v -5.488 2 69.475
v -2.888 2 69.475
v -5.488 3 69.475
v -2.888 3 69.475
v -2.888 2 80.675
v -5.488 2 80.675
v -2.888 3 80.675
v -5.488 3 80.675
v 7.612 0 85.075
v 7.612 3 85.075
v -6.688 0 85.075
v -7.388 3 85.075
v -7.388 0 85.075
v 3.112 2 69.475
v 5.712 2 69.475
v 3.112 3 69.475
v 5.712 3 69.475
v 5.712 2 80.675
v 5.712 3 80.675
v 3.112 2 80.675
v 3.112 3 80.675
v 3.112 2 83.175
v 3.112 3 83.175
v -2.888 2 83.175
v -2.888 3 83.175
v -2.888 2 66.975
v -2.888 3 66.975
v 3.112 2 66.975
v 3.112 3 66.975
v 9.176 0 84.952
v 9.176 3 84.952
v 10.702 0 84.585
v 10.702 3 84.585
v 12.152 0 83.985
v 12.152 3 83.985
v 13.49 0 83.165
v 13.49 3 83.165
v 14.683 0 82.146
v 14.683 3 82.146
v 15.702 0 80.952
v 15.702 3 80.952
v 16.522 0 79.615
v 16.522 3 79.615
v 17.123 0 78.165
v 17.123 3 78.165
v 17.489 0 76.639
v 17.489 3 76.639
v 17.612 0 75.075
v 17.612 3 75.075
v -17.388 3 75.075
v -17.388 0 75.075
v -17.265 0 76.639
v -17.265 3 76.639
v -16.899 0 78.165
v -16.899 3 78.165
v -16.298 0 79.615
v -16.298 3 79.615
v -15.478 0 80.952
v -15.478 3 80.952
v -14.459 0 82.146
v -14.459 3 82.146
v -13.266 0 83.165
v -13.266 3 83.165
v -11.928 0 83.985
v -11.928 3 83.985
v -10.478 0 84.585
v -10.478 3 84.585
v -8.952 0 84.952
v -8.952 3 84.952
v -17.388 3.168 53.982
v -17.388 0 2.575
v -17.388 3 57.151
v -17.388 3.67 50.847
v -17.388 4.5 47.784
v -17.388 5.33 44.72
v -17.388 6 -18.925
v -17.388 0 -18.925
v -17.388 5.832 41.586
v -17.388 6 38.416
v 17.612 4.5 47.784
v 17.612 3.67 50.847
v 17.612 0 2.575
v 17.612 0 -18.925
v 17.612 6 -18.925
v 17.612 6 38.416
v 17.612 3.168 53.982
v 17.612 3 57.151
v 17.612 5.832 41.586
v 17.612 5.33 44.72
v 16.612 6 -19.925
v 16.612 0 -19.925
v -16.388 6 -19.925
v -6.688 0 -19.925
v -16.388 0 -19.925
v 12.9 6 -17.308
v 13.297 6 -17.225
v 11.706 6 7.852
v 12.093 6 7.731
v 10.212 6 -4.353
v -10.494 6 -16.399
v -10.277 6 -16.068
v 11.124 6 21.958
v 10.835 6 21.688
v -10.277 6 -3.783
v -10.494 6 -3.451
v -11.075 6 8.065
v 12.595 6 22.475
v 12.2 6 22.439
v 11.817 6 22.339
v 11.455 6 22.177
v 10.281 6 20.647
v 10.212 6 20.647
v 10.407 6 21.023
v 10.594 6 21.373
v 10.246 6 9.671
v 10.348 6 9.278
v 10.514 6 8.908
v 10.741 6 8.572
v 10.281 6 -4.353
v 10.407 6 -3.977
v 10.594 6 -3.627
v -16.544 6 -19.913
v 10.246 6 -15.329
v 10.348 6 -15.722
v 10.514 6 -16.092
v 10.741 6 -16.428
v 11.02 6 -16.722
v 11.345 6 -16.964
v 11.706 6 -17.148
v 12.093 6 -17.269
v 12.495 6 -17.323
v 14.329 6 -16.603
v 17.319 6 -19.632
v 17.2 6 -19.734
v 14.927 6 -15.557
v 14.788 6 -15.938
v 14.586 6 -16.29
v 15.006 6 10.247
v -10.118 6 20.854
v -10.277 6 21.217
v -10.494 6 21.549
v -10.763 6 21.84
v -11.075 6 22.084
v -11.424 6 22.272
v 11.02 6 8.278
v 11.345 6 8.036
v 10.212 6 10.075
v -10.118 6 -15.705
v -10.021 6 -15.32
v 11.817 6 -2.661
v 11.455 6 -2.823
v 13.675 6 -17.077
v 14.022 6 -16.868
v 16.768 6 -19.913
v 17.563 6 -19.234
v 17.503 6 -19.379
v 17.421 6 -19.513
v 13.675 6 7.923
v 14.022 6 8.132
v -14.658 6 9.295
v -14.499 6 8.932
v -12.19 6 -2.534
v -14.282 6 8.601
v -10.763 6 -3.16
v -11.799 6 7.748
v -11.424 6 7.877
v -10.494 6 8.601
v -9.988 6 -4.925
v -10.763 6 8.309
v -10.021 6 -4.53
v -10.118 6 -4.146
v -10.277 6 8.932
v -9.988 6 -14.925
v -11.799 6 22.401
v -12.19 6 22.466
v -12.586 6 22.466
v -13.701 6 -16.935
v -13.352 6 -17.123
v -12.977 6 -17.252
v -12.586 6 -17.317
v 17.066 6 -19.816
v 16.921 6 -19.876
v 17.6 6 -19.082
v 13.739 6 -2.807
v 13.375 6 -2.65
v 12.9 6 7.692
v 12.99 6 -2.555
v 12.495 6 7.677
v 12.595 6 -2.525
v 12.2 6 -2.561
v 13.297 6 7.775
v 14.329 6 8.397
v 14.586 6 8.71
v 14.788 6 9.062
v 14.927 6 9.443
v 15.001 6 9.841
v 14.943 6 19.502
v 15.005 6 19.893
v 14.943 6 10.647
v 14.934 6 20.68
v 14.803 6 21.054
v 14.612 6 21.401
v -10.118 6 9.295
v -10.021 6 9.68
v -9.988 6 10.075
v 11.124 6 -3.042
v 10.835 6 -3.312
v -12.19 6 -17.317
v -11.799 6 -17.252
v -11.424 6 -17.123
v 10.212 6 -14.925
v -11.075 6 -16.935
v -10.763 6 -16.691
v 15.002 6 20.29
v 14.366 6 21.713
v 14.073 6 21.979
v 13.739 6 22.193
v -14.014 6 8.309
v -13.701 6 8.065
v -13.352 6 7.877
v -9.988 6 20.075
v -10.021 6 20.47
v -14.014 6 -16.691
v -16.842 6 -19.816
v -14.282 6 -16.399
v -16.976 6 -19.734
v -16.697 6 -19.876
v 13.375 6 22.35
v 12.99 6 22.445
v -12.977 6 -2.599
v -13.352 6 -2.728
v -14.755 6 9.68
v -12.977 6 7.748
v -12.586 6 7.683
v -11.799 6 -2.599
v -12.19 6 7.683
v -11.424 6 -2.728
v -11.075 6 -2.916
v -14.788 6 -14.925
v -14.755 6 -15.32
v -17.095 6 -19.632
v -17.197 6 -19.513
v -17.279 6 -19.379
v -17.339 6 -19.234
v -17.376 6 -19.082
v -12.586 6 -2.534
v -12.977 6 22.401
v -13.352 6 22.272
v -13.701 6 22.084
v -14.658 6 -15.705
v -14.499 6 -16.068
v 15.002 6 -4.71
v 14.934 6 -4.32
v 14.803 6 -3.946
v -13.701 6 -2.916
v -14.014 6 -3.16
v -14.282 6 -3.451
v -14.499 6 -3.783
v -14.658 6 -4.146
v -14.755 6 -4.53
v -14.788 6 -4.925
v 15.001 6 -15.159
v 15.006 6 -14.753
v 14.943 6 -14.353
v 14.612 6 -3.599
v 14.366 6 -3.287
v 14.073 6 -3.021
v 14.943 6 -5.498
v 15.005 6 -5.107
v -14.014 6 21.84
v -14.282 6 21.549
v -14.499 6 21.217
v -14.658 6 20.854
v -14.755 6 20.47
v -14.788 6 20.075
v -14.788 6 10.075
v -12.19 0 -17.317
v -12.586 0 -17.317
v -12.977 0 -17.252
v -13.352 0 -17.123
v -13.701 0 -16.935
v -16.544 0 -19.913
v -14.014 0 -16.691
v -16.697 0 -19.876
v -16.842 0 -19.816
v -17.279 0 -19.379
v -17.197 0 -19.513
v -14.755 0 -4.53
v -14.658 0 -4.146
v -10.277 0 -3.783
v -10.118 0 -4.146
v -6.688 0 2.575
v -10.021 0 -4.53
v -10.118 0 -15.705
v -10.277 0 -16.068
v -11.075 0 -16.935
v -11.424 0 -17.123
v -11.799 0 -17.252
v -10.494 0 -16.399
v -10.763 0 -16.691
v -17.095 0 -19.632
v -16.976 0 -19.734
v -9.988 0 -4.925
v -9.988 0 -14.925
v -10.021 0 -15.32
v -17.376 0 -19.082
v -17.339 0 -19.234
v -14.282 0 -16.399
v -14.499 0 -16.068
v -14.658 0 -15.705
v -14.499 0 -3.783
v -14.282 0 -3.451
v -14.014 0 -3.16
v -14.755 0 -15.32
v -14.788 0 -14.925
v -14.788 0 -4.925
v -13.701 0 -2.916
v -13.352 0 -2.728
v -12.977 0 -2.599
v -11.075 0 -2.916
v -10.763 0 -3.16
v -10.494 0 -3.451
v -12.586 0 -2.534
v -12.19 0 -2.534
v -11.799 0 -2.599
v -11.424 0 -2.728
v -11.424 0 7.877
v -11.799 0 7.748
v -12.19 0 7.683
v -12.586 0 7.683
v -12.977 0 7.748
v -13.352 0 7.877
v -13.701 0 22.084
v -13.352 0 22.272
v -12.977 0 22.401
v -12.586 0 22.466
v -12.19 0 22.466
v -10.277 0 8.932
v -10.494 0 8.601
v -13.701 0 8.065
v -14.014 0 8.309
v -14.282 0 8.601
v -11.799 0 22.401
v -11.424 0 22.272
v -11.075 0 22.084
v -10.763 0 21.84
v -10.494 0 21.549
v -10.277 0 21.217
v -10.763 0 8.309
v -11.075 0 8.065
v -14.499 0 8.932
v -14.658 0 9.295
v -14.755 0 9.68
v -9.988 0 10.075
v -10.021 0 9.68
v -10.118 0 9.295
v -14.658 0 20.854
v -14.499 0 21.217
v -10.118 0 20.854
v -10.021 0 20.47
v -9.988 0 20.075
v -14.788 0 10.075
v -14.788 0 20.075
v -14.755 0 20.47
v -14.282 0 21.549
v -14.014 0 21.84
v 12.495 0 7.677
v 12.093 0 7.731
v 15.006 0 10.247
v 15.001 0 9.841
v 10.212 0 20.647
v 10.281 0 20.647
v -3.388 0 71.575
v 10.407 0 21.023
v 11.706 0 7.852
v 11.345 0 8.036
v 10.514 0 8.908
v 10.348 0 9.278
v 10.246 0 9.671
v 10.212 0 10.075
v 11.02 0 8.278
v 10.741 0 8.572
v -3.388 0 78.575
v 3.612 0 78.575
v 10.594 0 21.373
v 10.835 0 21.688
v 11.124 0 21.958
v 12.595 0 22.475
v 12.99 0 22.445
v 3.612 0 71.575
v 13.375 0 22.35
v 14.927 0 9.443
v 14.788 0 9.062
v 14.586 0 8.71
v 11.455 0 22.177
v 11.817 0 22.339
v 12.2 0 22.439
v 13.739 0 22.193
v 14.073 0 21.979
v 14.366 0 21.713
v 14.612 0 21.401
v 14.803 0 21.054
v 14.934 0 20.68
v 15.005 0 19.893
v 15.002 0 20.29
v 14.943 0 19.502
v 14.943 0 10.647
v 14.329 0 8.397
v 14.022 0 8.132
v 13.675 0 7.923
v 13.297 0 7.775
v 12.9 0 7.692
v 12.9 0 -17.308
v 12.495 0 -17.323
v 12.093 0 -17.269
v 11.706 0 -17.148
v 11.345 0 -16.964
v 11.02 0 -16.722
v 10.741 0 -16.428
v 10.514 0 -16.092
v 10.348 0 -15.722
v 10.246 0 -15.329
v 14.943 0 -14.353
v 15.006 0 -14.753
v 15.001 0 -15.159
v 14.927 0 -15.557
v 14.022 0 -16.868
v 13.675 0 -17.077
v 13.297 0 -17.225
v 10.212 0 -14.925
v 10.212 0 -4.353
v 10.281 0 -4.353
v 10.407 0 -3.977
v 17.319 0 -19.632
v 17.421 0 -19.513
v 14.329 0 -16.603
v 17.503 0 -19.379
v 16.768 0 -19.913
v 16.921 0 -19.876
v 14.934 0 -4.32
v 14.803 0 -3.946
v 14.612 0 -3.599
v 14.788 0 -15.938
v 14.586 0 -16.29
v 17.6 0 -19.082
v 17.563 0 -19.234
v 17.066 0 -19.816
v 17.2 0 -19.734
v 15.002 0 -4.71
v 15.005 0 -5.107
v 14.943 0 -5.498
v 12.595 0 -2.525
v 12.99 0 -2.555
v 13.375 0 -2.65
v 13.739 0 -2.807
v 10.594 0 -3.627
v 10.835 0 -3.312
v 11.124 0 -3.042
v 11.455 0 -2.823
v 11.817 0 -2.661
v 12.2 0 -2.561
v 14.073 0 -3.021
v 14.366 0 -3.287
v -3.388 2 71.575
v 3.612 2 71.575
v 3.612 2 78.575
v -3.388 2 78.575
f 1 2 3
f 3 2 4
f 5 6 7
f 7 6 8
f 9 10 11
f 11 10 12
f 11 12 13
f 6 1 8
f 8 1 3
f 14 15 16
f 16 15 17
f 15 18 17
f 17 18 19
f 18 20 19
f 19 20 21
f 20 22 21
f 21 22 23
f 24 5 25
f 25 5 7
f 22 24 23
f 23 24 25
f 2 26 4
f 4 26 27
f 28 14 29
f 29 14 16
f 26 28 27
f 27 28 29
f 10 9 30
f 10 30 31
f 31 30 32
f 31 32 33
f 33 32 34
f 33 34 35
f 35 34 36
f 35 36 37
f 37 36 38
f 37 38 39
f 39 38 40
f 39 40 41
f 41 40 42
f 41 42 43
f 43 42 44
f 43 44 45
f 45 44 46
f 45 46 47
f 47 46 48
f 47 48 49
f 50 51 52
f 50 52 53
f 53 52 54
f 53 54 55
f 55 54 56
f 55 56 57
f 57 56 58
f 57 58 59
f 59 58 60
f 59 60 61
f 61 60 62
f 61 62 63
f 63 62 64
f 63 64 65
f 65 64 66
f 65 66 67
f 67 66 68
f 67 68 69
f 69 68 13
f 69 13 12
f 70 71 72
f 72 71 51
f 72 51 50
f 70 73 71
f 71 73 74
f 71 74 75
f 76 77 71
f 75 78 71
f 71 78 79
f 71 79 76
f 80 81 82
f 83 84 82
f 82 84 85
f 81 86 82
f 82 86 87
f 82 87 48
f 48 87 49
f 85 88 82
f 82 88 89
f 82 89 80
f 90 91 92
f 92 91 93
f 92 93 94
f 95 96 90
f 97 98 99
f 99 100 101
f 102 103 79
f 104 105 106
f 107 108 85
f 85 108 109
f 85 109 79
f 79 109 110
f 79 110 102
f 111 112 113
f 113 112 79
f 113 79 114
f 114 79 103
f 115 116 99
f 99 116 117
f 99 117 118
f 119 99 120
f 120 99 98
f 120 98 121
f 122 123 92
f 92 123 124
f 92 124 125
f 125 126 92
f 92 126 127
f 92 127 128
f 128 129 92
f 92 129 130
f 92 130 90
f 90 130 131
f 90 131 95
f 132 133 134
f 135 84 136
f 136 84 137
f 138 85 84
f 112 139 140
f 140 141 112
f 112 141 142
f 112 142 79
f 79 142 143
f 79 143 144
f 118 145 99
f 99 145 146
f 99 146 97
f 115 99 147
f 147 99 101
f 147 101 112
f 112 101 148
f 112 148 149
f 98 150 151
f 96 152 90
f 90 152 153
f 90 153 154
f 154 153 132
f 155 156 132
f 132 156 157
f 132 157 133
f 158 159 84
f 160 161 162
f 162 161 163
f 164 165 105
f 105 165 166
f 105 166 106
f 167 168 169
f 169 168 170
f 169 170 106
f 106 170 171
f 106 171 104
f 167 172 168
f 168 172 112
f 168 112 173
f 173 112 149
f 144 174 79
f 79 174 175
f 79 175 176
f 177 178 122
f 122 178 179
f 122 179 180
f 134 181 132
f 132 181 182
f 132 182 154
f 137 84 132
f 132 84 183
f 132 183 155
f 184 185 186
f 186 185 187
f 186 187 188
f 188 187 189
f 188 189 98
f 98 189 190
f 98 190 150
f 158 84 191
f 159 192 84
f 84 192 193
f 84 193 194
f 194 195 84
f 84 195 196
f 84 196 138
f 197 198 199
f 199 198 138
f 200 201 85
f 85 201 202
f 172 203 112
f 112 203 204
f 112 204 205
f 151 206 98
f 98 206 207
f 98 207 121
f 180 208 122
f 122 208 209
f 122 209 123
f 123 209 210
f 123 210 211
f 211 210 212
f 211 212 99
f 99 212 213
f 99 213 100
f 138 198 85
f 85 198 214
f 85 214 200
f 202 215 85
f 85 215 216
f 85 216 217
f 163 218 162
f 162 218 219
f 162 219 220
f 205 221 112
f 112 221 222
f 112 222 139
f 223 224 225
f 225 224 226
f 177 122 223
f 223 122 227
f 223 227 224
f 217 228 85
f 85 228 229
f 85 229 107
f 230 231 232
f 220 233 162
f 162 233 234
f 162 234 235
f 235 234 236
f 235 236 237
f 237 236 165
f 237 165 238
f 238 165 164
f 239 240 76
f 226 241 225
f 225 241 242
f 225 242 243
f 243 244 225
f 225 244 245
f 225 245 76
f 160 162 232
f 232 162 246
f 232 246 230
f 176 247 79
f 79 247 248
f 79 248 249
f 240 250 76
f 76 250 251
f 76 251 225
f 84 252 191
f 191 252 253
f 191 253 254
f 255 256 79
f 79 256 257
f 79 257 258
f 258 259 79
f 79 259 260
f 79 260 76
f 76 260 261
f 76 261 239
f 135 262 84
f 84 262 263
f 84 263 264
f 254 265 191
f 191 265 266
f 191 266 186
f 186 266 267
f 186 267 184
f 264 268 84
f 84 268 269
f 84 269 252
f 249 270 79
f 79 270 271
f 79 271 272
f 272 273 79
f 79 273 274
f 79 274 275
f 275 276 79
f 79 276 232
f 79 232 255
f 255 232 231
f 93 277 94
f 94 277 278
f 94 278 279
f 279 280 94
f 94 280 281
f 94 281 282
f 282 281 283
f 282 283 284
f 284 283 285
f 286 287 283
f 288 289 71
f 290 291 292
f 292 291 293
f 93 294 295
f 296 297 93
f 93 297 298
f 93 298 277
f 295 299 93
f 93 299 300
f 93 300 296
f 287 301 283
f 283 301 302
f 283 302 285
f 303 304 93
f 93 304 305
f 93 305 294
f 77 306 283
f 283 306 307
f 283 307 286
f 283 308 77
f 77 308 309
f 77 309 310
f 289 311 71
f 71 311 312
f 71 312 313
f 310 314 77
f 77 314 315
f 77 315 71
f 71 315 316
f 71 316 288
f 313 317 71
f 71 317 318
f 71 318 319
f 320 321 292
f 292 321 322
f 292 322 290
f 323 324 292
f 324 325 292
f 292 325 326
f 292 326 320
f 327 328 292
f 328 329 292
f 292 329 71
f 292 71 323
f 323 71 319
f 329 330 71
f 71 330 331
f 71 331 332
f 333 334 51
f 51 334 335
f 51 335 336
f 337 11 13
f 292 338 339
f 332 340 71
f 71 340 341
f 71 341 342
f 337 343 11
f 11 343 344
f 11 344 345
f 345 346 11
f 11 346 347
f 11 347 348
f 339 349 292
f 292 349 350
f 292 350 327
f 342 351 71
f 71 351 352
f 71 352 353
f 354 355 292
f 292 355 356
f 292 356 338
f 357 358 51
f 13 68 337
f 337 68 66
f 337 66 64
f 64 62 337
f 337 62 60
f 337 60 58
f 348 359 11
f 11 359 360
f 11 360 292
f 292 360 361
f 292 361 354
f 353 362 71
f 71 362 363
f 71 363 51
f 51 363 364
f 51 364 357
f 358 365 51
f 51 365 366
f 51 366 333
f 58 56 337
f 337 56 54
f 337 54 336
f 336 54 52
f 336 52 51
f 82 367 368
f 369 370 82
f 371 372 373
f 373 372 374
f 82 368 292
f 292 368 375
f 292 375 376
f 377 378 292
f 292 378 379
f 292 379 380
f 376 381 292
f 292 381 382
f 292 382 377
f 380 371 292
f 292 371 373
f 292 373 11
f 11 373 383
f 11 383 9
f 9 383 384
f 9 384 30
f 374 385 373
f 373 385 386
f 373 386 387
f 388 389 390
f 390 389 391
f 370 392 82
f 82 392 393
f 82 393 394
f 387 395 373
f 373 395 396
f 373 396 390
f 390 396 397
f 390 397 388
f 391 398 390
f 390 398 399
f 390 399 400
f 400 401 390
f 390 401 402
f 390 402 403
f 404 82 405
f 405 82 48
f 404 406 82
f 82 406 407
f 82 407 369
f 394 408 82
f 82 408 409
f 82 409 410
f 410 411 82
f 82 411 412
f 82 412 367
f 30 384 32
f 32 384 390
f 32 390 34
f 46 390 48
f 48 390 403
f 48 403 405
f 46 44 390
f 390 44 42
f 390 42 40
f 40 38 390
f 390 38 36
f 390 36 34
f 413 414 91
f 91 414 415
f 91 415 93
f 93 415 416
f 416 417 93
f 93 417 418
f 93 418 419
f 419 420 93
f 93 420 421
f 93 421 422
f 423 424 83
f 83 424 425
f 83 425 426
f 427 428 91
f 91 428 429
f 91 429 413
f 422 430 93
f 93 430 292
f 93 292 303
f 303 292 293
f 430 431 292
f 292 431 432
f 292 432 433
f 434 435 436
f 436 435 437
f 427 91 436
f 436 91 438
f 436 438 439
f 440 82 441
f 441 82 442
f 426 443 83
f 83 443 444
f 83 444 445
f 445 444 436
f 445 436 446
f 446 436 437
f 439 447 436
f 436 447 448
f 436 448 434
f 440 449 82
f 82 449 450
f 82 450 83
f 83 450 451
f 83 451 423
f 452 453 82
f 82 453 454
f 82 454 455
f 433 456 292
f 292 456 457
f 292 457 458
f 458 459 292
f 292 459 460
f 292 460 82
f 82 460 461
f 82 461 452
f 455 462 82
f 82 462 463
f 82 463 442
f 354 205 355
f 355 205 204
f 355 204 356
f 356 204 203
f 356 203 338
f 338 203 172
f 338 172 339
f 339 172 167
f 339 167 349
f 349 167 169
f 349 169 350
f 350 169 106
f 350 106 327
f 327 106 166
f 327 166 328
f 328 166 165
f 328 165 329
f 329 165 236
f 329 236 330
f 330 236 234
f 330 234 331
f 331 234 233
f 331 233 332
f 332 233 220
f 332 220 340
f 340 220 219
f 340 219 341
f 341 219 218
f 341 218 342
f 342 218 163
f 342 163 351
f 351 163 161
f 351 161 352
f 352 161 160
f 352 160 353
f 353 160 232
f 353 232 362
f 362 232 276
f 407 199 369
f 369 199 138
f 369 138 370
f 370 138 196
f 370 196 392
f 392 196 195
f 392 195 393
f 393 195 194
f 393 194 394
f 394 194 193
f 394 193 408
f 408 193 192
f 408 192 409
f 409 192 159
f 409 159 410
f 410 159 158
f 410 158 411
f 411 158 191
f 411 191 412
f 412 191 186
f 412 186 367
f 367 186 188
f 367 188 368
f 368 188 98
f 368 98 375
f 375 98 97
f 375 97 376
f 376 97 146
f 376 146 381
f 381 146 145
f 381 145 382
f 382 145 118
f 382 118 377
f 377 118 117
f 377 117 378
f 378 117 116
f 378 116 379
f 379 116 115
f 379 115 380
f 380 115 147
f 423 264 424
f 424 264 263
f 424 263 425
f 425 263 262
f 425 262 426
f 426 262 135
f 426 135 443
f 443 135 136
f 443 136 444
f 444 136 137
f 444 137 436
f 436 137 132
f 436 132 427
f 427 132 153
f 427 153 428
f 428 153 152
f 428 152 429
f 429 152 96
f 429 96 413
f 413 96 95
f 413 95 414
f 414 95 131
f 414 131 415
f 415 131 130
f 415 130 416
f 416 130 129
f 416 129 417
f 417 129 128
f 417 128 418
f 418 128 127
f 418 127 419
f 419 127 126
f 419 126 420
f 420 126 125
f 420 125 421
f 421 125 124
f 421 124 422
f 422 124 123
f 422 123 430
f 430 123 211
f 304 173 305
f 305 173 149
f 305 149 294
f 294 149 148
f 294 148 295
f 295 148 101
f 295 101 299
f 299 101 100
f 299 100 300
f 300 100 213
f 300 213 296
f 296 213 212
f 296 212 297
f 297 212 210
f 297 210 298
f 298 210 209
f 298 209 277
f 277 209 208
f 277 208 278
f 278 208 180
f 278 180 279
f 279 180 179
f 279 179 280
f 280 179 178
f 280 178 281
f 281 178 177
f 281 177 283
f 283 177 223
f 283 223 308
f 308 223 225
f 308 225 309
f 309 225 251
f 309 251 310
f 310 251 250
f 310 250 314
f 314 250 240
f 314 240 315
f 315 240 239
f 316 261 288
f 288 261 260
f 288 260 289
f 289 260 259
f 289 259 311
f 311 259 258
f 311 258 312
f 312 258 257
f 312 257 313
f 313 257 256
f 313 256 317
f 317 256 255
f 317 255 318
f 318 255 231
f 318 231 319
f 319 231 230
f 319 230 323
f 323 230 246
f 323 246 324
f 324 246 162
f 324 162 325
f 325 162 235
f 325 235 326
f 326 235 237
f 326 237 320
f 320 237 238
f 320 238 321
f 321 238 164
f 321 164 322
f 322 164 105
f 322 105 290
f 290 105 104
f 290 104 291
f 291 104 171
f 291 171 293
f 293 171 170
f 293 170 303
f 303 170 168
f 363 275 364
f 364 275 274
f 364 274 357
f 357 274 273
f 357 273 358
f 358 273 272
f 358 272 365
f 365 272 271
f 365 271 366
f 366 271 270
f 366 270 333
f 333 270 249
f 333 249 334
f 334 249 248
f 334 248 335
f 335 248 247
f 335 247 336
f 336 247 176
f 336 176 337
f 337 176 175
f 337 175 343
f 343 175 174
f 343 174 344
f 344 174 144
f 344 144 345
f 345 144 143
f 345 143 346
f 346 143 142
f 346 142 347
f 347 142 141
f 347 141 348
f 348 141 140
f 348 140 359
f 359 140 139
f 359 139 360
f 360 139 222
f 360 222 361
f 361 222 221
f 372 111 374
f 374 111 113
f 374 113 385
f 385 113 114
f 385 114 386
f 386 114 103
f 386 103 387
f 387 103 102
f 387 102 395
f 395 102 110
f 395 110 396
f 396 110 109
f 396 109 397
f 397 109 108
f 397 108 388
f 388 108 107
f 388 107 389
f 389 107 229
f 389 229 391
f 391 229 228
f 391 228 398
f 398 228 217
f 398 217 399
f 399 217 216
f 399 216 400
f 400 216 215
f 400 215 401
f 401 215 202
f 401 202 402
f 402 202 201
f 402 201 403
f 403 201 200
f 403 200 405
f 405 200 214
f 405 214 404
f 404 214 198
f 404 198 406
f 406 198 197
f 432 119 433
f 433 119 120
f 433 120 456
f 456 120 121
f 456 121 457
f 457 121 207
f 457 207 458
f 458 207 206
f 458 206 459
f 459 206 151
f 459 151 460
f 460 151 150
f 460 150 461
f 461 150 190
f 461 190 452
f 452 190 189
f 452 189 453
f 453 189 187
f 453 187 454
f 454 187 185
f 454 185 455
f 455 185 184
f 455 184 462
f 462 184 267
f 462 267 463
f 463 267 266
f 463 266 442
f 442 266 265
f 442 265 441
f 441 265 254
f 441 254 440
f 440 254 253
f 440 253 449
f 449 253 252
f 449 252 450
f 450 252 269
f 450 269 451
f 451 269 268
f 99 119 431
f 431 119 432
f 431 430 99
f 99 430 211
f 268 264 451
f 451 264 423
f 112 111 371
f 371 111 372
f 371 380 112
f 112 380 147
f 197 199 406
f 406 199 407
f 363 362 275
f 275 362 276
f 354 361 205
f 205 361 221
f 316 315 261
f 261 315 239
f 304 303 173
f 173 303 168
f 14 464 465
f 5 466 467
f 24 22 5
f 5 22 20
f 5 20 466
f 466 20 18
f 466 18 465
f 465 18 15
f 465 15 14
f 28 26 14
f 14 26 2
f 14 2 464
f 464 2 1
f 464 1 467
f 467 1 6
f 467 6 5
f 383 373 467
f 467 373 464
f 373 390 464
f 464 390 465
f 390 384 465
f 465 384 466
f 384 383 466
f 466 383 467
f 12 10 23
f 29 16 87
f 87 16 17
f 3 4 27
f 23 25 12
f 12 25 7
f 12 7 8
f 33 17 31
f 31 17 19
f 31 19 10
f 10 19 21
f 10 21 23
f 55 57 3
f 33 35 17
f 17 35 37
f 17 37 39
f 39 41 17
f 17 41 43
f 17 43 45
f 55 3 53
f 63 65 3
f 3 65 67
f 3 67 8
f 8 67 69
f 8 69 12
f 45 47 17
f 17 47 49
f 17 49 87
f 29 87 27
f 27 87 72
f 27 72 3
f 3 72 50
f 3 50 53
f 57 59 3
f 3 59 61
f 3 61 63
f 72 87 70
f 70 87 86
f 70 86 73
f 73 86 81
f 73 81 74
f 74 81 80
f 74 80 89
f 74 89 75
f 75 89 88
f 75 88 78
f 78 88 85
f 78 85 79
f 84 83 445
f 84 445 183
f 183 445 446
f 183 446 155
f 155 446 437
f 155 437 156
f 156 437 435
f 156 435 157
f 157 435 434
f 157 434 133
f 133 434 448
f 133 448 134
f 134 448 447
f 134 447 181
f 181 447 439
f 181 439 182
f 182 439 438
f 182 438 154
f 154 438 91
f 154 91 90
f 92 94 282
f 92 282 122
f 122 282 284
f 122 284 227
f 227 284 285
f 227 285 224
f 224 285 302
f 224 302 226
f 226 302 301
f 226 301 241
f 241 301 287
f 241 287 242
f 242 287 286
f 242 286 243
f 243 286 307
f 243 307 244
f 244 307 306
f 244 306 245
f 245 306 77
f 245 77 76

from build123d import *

# Parameters (mm, degrees)
SKETCH1_W            = 35
SKETCH1_H            = 105
BOSS_EXTRUDE1_DEPTH  = 6
M4_CLEARANCE_HOLE1_D = 4.8
LPATTERN2_COUNT      = 2
LPATTERN2_PITCH      = 10
SKETCH5_W            = 4.8
SKETCH5_H            = 10
SKETCH5_W_2          = 4.730666207
SKETCH5_H_2          = 10.572708501
CUT_EXTRUDE1_DEPTH   = 88.085432636
SKETCH6_W            = 11.2
SKETCH6_H            = 11.2
CUT_EXTRUDE2_DEPTH   = 4
SKETCH7_W            = 7
SKETCH7_H            = 7
CUT_EXTRUDE3_DEPTH   = 87.970527062
SKETCH8_W            = 6
SKETCH8_H            = 16.2
CUT_EXTRUDE4_DEPTH   = 4
FILLET1_R            = 10
CUT_EXTRUDE5_START   = -6
SKETCH9_W            = 37.049954943
SKETCH9_H            = 41
CUT_EXTRUDE5_DEPTH   = 3
FILLET2_R            = 30
FILLET3_R            = 30
FILLET4_R            = 1


with BuildPart() as part:
    # Sketch1 → Boss-Extrude1 (new body)
    with BuildSketch(Plane(origin=(0, 0, 0), x_dir=(1, 0, 0), z_dir=(0, 1, 0))):
        with Locations((0.111940299, -32.574626866)):
            Rectangle(SKETCH1_W, SKETCH1_H)
    extrude(amount=BOSS_EXTRUDE1_DEPTH)

    # M4 Clearance Hole1 (through all)
    with Locations(Plane(origin=(0, 6, 0), x_dir=(1, 0, 0), z_dir=(0, 1, 0))):
        with Locations((-12.388059701, 14.925373134), (12.611940299, 14.925373134), (12.611940299, -10.074626866), (-12.388059701, -10.074626866)):
            m4_clearance_hole1 = Hole(M4_CLEARANCE_HOLE1_D / 2)

    # LPattern2: M4 Clearance Hole1 ×2
    with Locations(*[(0, 0, i * LPATTERN2_PITCH) for i in range(1, LPATTERN2_COUNT)]):
        add(m4_clearance_hole1, mode=Mode.SUBTRACT)

    # Sketch5 → Cut-Extrude1 (cut, through all)
    with BuildSketch(Plane(origin=(0, 6, 0), x_dir=(1, 0, 0), z_dir=(0, 1, 0))):
        with Locations((-12.388059701, 9.925373134)):
            Rectangle(SKETCH5_W, SKETCH5_H)
        with Locations((-12.388059701, -15.074626866)):
            Rectangle(SKETCH5_W, SKETCH5_H)
        with Locations((12.577273403, 9.639018884)):
            Rectangle(SKETCH5_W_2, SKETCH5_H_2)
        with Locations((12.577273403, -15.360981116)):
            Rectangle(SKETCH5_W_2, SKETCH5_H_2)
    extrude(amount=-CUT_EXTRUDE1_DEPTH, mode=Mode.SUBTRACT)

    # Sketch6 → Cut-Extrude2 (cut)
    with BuildSketch(Plane(origin=(0, 6, 0), x_dir=(1, 0, 0), z_dir=(0, 1, 0))):
        with Locations((0.111940299, -75.074626866)):
            Rectangle(SKETCH6_W, SKETCH6_H)
    extrude(amount=-CUT_EXTRUDE2_DEPTH, mode=Mode.SUBTRACT)

    # Sketch7 → Cut-Extrude3 (cut, through all)
    with BuildSketch(Plane(origin=(0, 2, 0), x_dir=(1, 0, 0), z_dir=(0, 1, 0))):
        with Locations((0.111940299, -75.074626866)):
            Rectangle(SKETCH7_W, SKETCH7_H)
    extrude(amount=-CUT_EXTRUDE3_DEPTH, mode=Mode.SUBTRACT)

    # Sketch8 → Cut-Extrude4 (cut)
    with BuildSketch(Plane(origin=(0, 6, 0), x_dir=(1, 0, 0), z_dir=(0, 1, 0))):
        with Locations((0.111940299, -75.074626866)):
            Rectangle(SKETCH8_W, SKETCH8_H)
    extrude(amount=-CUT_EXTRUDE4_DEPTH, mode=Mode.SUBTRACT)

    # Fillet1
    fillet1_edges = [part.edges().sort_by_distance(p)[0] for p in [
        (17.611940299, 3, 85.074626866),
        (-17.388059701, 3, 85.074626866),
    ]]
    fillet(fillet1_edges, radius=FILLET1_R)

    # Sketch9 → Cut-Extrude5 (cut)
    with BuildSketch(Plane.XZ.offset(CUT_EXTRUDE5_START)):
        with Locations((1.136917771, 64.574626866)):
            Rectangle(SKETCH9_W, SKETCH9_H)
    extrude(amount=CUT_EXTRUDE5_DEPTH, mode=Mode.SUBTRACT)

    # Fillet2
    # the kernel refuses this fillet: 30 mm, written as the material it adds along each edge
    with BuildSketch(Plane(origin=(-17.388059701, 3, 44.074626866), x_dir=(0, 1, 0), z_dir=(1, 0, 0))) as fillet2_piece_1:
        with BuildLine():
            CenterArc((30, 13.076696831), FILLET2_R, 180, 25.841932763)
            Line((0, 13.076696831), (-0.6, 13.076696831))
            Line((-0.6, 13.076696831), (-0.6, 0))
            Line((-0.6, 0), (0, -0.6))
            ThreePointArc((0, -0.6), (1.5, -0.6), (2.46, -0.261533937))
            Line((2.46, -0.261533937), (3, 0))
        make_face()
    extrude(amount=35)

    # Fillet3
    fillet3_edges = [part.edges().sort_by_distance(p)[0] for p in [
        (0.111940299, 6, 44.074626866),
    ]]
    fillet(fillet3_edges, radius=FILLET3_R)

    # Fillet4
    fillet4_edges = [part.edges().sort_by_distance(p)[0] for p in [
        (-17.388059701, 3, -19.925373134),
        (17.611940299, 3, -19.925373134),
    ]]
    fillet(fillet4_edges, radius=FILLET4_R)


solid = part.part
